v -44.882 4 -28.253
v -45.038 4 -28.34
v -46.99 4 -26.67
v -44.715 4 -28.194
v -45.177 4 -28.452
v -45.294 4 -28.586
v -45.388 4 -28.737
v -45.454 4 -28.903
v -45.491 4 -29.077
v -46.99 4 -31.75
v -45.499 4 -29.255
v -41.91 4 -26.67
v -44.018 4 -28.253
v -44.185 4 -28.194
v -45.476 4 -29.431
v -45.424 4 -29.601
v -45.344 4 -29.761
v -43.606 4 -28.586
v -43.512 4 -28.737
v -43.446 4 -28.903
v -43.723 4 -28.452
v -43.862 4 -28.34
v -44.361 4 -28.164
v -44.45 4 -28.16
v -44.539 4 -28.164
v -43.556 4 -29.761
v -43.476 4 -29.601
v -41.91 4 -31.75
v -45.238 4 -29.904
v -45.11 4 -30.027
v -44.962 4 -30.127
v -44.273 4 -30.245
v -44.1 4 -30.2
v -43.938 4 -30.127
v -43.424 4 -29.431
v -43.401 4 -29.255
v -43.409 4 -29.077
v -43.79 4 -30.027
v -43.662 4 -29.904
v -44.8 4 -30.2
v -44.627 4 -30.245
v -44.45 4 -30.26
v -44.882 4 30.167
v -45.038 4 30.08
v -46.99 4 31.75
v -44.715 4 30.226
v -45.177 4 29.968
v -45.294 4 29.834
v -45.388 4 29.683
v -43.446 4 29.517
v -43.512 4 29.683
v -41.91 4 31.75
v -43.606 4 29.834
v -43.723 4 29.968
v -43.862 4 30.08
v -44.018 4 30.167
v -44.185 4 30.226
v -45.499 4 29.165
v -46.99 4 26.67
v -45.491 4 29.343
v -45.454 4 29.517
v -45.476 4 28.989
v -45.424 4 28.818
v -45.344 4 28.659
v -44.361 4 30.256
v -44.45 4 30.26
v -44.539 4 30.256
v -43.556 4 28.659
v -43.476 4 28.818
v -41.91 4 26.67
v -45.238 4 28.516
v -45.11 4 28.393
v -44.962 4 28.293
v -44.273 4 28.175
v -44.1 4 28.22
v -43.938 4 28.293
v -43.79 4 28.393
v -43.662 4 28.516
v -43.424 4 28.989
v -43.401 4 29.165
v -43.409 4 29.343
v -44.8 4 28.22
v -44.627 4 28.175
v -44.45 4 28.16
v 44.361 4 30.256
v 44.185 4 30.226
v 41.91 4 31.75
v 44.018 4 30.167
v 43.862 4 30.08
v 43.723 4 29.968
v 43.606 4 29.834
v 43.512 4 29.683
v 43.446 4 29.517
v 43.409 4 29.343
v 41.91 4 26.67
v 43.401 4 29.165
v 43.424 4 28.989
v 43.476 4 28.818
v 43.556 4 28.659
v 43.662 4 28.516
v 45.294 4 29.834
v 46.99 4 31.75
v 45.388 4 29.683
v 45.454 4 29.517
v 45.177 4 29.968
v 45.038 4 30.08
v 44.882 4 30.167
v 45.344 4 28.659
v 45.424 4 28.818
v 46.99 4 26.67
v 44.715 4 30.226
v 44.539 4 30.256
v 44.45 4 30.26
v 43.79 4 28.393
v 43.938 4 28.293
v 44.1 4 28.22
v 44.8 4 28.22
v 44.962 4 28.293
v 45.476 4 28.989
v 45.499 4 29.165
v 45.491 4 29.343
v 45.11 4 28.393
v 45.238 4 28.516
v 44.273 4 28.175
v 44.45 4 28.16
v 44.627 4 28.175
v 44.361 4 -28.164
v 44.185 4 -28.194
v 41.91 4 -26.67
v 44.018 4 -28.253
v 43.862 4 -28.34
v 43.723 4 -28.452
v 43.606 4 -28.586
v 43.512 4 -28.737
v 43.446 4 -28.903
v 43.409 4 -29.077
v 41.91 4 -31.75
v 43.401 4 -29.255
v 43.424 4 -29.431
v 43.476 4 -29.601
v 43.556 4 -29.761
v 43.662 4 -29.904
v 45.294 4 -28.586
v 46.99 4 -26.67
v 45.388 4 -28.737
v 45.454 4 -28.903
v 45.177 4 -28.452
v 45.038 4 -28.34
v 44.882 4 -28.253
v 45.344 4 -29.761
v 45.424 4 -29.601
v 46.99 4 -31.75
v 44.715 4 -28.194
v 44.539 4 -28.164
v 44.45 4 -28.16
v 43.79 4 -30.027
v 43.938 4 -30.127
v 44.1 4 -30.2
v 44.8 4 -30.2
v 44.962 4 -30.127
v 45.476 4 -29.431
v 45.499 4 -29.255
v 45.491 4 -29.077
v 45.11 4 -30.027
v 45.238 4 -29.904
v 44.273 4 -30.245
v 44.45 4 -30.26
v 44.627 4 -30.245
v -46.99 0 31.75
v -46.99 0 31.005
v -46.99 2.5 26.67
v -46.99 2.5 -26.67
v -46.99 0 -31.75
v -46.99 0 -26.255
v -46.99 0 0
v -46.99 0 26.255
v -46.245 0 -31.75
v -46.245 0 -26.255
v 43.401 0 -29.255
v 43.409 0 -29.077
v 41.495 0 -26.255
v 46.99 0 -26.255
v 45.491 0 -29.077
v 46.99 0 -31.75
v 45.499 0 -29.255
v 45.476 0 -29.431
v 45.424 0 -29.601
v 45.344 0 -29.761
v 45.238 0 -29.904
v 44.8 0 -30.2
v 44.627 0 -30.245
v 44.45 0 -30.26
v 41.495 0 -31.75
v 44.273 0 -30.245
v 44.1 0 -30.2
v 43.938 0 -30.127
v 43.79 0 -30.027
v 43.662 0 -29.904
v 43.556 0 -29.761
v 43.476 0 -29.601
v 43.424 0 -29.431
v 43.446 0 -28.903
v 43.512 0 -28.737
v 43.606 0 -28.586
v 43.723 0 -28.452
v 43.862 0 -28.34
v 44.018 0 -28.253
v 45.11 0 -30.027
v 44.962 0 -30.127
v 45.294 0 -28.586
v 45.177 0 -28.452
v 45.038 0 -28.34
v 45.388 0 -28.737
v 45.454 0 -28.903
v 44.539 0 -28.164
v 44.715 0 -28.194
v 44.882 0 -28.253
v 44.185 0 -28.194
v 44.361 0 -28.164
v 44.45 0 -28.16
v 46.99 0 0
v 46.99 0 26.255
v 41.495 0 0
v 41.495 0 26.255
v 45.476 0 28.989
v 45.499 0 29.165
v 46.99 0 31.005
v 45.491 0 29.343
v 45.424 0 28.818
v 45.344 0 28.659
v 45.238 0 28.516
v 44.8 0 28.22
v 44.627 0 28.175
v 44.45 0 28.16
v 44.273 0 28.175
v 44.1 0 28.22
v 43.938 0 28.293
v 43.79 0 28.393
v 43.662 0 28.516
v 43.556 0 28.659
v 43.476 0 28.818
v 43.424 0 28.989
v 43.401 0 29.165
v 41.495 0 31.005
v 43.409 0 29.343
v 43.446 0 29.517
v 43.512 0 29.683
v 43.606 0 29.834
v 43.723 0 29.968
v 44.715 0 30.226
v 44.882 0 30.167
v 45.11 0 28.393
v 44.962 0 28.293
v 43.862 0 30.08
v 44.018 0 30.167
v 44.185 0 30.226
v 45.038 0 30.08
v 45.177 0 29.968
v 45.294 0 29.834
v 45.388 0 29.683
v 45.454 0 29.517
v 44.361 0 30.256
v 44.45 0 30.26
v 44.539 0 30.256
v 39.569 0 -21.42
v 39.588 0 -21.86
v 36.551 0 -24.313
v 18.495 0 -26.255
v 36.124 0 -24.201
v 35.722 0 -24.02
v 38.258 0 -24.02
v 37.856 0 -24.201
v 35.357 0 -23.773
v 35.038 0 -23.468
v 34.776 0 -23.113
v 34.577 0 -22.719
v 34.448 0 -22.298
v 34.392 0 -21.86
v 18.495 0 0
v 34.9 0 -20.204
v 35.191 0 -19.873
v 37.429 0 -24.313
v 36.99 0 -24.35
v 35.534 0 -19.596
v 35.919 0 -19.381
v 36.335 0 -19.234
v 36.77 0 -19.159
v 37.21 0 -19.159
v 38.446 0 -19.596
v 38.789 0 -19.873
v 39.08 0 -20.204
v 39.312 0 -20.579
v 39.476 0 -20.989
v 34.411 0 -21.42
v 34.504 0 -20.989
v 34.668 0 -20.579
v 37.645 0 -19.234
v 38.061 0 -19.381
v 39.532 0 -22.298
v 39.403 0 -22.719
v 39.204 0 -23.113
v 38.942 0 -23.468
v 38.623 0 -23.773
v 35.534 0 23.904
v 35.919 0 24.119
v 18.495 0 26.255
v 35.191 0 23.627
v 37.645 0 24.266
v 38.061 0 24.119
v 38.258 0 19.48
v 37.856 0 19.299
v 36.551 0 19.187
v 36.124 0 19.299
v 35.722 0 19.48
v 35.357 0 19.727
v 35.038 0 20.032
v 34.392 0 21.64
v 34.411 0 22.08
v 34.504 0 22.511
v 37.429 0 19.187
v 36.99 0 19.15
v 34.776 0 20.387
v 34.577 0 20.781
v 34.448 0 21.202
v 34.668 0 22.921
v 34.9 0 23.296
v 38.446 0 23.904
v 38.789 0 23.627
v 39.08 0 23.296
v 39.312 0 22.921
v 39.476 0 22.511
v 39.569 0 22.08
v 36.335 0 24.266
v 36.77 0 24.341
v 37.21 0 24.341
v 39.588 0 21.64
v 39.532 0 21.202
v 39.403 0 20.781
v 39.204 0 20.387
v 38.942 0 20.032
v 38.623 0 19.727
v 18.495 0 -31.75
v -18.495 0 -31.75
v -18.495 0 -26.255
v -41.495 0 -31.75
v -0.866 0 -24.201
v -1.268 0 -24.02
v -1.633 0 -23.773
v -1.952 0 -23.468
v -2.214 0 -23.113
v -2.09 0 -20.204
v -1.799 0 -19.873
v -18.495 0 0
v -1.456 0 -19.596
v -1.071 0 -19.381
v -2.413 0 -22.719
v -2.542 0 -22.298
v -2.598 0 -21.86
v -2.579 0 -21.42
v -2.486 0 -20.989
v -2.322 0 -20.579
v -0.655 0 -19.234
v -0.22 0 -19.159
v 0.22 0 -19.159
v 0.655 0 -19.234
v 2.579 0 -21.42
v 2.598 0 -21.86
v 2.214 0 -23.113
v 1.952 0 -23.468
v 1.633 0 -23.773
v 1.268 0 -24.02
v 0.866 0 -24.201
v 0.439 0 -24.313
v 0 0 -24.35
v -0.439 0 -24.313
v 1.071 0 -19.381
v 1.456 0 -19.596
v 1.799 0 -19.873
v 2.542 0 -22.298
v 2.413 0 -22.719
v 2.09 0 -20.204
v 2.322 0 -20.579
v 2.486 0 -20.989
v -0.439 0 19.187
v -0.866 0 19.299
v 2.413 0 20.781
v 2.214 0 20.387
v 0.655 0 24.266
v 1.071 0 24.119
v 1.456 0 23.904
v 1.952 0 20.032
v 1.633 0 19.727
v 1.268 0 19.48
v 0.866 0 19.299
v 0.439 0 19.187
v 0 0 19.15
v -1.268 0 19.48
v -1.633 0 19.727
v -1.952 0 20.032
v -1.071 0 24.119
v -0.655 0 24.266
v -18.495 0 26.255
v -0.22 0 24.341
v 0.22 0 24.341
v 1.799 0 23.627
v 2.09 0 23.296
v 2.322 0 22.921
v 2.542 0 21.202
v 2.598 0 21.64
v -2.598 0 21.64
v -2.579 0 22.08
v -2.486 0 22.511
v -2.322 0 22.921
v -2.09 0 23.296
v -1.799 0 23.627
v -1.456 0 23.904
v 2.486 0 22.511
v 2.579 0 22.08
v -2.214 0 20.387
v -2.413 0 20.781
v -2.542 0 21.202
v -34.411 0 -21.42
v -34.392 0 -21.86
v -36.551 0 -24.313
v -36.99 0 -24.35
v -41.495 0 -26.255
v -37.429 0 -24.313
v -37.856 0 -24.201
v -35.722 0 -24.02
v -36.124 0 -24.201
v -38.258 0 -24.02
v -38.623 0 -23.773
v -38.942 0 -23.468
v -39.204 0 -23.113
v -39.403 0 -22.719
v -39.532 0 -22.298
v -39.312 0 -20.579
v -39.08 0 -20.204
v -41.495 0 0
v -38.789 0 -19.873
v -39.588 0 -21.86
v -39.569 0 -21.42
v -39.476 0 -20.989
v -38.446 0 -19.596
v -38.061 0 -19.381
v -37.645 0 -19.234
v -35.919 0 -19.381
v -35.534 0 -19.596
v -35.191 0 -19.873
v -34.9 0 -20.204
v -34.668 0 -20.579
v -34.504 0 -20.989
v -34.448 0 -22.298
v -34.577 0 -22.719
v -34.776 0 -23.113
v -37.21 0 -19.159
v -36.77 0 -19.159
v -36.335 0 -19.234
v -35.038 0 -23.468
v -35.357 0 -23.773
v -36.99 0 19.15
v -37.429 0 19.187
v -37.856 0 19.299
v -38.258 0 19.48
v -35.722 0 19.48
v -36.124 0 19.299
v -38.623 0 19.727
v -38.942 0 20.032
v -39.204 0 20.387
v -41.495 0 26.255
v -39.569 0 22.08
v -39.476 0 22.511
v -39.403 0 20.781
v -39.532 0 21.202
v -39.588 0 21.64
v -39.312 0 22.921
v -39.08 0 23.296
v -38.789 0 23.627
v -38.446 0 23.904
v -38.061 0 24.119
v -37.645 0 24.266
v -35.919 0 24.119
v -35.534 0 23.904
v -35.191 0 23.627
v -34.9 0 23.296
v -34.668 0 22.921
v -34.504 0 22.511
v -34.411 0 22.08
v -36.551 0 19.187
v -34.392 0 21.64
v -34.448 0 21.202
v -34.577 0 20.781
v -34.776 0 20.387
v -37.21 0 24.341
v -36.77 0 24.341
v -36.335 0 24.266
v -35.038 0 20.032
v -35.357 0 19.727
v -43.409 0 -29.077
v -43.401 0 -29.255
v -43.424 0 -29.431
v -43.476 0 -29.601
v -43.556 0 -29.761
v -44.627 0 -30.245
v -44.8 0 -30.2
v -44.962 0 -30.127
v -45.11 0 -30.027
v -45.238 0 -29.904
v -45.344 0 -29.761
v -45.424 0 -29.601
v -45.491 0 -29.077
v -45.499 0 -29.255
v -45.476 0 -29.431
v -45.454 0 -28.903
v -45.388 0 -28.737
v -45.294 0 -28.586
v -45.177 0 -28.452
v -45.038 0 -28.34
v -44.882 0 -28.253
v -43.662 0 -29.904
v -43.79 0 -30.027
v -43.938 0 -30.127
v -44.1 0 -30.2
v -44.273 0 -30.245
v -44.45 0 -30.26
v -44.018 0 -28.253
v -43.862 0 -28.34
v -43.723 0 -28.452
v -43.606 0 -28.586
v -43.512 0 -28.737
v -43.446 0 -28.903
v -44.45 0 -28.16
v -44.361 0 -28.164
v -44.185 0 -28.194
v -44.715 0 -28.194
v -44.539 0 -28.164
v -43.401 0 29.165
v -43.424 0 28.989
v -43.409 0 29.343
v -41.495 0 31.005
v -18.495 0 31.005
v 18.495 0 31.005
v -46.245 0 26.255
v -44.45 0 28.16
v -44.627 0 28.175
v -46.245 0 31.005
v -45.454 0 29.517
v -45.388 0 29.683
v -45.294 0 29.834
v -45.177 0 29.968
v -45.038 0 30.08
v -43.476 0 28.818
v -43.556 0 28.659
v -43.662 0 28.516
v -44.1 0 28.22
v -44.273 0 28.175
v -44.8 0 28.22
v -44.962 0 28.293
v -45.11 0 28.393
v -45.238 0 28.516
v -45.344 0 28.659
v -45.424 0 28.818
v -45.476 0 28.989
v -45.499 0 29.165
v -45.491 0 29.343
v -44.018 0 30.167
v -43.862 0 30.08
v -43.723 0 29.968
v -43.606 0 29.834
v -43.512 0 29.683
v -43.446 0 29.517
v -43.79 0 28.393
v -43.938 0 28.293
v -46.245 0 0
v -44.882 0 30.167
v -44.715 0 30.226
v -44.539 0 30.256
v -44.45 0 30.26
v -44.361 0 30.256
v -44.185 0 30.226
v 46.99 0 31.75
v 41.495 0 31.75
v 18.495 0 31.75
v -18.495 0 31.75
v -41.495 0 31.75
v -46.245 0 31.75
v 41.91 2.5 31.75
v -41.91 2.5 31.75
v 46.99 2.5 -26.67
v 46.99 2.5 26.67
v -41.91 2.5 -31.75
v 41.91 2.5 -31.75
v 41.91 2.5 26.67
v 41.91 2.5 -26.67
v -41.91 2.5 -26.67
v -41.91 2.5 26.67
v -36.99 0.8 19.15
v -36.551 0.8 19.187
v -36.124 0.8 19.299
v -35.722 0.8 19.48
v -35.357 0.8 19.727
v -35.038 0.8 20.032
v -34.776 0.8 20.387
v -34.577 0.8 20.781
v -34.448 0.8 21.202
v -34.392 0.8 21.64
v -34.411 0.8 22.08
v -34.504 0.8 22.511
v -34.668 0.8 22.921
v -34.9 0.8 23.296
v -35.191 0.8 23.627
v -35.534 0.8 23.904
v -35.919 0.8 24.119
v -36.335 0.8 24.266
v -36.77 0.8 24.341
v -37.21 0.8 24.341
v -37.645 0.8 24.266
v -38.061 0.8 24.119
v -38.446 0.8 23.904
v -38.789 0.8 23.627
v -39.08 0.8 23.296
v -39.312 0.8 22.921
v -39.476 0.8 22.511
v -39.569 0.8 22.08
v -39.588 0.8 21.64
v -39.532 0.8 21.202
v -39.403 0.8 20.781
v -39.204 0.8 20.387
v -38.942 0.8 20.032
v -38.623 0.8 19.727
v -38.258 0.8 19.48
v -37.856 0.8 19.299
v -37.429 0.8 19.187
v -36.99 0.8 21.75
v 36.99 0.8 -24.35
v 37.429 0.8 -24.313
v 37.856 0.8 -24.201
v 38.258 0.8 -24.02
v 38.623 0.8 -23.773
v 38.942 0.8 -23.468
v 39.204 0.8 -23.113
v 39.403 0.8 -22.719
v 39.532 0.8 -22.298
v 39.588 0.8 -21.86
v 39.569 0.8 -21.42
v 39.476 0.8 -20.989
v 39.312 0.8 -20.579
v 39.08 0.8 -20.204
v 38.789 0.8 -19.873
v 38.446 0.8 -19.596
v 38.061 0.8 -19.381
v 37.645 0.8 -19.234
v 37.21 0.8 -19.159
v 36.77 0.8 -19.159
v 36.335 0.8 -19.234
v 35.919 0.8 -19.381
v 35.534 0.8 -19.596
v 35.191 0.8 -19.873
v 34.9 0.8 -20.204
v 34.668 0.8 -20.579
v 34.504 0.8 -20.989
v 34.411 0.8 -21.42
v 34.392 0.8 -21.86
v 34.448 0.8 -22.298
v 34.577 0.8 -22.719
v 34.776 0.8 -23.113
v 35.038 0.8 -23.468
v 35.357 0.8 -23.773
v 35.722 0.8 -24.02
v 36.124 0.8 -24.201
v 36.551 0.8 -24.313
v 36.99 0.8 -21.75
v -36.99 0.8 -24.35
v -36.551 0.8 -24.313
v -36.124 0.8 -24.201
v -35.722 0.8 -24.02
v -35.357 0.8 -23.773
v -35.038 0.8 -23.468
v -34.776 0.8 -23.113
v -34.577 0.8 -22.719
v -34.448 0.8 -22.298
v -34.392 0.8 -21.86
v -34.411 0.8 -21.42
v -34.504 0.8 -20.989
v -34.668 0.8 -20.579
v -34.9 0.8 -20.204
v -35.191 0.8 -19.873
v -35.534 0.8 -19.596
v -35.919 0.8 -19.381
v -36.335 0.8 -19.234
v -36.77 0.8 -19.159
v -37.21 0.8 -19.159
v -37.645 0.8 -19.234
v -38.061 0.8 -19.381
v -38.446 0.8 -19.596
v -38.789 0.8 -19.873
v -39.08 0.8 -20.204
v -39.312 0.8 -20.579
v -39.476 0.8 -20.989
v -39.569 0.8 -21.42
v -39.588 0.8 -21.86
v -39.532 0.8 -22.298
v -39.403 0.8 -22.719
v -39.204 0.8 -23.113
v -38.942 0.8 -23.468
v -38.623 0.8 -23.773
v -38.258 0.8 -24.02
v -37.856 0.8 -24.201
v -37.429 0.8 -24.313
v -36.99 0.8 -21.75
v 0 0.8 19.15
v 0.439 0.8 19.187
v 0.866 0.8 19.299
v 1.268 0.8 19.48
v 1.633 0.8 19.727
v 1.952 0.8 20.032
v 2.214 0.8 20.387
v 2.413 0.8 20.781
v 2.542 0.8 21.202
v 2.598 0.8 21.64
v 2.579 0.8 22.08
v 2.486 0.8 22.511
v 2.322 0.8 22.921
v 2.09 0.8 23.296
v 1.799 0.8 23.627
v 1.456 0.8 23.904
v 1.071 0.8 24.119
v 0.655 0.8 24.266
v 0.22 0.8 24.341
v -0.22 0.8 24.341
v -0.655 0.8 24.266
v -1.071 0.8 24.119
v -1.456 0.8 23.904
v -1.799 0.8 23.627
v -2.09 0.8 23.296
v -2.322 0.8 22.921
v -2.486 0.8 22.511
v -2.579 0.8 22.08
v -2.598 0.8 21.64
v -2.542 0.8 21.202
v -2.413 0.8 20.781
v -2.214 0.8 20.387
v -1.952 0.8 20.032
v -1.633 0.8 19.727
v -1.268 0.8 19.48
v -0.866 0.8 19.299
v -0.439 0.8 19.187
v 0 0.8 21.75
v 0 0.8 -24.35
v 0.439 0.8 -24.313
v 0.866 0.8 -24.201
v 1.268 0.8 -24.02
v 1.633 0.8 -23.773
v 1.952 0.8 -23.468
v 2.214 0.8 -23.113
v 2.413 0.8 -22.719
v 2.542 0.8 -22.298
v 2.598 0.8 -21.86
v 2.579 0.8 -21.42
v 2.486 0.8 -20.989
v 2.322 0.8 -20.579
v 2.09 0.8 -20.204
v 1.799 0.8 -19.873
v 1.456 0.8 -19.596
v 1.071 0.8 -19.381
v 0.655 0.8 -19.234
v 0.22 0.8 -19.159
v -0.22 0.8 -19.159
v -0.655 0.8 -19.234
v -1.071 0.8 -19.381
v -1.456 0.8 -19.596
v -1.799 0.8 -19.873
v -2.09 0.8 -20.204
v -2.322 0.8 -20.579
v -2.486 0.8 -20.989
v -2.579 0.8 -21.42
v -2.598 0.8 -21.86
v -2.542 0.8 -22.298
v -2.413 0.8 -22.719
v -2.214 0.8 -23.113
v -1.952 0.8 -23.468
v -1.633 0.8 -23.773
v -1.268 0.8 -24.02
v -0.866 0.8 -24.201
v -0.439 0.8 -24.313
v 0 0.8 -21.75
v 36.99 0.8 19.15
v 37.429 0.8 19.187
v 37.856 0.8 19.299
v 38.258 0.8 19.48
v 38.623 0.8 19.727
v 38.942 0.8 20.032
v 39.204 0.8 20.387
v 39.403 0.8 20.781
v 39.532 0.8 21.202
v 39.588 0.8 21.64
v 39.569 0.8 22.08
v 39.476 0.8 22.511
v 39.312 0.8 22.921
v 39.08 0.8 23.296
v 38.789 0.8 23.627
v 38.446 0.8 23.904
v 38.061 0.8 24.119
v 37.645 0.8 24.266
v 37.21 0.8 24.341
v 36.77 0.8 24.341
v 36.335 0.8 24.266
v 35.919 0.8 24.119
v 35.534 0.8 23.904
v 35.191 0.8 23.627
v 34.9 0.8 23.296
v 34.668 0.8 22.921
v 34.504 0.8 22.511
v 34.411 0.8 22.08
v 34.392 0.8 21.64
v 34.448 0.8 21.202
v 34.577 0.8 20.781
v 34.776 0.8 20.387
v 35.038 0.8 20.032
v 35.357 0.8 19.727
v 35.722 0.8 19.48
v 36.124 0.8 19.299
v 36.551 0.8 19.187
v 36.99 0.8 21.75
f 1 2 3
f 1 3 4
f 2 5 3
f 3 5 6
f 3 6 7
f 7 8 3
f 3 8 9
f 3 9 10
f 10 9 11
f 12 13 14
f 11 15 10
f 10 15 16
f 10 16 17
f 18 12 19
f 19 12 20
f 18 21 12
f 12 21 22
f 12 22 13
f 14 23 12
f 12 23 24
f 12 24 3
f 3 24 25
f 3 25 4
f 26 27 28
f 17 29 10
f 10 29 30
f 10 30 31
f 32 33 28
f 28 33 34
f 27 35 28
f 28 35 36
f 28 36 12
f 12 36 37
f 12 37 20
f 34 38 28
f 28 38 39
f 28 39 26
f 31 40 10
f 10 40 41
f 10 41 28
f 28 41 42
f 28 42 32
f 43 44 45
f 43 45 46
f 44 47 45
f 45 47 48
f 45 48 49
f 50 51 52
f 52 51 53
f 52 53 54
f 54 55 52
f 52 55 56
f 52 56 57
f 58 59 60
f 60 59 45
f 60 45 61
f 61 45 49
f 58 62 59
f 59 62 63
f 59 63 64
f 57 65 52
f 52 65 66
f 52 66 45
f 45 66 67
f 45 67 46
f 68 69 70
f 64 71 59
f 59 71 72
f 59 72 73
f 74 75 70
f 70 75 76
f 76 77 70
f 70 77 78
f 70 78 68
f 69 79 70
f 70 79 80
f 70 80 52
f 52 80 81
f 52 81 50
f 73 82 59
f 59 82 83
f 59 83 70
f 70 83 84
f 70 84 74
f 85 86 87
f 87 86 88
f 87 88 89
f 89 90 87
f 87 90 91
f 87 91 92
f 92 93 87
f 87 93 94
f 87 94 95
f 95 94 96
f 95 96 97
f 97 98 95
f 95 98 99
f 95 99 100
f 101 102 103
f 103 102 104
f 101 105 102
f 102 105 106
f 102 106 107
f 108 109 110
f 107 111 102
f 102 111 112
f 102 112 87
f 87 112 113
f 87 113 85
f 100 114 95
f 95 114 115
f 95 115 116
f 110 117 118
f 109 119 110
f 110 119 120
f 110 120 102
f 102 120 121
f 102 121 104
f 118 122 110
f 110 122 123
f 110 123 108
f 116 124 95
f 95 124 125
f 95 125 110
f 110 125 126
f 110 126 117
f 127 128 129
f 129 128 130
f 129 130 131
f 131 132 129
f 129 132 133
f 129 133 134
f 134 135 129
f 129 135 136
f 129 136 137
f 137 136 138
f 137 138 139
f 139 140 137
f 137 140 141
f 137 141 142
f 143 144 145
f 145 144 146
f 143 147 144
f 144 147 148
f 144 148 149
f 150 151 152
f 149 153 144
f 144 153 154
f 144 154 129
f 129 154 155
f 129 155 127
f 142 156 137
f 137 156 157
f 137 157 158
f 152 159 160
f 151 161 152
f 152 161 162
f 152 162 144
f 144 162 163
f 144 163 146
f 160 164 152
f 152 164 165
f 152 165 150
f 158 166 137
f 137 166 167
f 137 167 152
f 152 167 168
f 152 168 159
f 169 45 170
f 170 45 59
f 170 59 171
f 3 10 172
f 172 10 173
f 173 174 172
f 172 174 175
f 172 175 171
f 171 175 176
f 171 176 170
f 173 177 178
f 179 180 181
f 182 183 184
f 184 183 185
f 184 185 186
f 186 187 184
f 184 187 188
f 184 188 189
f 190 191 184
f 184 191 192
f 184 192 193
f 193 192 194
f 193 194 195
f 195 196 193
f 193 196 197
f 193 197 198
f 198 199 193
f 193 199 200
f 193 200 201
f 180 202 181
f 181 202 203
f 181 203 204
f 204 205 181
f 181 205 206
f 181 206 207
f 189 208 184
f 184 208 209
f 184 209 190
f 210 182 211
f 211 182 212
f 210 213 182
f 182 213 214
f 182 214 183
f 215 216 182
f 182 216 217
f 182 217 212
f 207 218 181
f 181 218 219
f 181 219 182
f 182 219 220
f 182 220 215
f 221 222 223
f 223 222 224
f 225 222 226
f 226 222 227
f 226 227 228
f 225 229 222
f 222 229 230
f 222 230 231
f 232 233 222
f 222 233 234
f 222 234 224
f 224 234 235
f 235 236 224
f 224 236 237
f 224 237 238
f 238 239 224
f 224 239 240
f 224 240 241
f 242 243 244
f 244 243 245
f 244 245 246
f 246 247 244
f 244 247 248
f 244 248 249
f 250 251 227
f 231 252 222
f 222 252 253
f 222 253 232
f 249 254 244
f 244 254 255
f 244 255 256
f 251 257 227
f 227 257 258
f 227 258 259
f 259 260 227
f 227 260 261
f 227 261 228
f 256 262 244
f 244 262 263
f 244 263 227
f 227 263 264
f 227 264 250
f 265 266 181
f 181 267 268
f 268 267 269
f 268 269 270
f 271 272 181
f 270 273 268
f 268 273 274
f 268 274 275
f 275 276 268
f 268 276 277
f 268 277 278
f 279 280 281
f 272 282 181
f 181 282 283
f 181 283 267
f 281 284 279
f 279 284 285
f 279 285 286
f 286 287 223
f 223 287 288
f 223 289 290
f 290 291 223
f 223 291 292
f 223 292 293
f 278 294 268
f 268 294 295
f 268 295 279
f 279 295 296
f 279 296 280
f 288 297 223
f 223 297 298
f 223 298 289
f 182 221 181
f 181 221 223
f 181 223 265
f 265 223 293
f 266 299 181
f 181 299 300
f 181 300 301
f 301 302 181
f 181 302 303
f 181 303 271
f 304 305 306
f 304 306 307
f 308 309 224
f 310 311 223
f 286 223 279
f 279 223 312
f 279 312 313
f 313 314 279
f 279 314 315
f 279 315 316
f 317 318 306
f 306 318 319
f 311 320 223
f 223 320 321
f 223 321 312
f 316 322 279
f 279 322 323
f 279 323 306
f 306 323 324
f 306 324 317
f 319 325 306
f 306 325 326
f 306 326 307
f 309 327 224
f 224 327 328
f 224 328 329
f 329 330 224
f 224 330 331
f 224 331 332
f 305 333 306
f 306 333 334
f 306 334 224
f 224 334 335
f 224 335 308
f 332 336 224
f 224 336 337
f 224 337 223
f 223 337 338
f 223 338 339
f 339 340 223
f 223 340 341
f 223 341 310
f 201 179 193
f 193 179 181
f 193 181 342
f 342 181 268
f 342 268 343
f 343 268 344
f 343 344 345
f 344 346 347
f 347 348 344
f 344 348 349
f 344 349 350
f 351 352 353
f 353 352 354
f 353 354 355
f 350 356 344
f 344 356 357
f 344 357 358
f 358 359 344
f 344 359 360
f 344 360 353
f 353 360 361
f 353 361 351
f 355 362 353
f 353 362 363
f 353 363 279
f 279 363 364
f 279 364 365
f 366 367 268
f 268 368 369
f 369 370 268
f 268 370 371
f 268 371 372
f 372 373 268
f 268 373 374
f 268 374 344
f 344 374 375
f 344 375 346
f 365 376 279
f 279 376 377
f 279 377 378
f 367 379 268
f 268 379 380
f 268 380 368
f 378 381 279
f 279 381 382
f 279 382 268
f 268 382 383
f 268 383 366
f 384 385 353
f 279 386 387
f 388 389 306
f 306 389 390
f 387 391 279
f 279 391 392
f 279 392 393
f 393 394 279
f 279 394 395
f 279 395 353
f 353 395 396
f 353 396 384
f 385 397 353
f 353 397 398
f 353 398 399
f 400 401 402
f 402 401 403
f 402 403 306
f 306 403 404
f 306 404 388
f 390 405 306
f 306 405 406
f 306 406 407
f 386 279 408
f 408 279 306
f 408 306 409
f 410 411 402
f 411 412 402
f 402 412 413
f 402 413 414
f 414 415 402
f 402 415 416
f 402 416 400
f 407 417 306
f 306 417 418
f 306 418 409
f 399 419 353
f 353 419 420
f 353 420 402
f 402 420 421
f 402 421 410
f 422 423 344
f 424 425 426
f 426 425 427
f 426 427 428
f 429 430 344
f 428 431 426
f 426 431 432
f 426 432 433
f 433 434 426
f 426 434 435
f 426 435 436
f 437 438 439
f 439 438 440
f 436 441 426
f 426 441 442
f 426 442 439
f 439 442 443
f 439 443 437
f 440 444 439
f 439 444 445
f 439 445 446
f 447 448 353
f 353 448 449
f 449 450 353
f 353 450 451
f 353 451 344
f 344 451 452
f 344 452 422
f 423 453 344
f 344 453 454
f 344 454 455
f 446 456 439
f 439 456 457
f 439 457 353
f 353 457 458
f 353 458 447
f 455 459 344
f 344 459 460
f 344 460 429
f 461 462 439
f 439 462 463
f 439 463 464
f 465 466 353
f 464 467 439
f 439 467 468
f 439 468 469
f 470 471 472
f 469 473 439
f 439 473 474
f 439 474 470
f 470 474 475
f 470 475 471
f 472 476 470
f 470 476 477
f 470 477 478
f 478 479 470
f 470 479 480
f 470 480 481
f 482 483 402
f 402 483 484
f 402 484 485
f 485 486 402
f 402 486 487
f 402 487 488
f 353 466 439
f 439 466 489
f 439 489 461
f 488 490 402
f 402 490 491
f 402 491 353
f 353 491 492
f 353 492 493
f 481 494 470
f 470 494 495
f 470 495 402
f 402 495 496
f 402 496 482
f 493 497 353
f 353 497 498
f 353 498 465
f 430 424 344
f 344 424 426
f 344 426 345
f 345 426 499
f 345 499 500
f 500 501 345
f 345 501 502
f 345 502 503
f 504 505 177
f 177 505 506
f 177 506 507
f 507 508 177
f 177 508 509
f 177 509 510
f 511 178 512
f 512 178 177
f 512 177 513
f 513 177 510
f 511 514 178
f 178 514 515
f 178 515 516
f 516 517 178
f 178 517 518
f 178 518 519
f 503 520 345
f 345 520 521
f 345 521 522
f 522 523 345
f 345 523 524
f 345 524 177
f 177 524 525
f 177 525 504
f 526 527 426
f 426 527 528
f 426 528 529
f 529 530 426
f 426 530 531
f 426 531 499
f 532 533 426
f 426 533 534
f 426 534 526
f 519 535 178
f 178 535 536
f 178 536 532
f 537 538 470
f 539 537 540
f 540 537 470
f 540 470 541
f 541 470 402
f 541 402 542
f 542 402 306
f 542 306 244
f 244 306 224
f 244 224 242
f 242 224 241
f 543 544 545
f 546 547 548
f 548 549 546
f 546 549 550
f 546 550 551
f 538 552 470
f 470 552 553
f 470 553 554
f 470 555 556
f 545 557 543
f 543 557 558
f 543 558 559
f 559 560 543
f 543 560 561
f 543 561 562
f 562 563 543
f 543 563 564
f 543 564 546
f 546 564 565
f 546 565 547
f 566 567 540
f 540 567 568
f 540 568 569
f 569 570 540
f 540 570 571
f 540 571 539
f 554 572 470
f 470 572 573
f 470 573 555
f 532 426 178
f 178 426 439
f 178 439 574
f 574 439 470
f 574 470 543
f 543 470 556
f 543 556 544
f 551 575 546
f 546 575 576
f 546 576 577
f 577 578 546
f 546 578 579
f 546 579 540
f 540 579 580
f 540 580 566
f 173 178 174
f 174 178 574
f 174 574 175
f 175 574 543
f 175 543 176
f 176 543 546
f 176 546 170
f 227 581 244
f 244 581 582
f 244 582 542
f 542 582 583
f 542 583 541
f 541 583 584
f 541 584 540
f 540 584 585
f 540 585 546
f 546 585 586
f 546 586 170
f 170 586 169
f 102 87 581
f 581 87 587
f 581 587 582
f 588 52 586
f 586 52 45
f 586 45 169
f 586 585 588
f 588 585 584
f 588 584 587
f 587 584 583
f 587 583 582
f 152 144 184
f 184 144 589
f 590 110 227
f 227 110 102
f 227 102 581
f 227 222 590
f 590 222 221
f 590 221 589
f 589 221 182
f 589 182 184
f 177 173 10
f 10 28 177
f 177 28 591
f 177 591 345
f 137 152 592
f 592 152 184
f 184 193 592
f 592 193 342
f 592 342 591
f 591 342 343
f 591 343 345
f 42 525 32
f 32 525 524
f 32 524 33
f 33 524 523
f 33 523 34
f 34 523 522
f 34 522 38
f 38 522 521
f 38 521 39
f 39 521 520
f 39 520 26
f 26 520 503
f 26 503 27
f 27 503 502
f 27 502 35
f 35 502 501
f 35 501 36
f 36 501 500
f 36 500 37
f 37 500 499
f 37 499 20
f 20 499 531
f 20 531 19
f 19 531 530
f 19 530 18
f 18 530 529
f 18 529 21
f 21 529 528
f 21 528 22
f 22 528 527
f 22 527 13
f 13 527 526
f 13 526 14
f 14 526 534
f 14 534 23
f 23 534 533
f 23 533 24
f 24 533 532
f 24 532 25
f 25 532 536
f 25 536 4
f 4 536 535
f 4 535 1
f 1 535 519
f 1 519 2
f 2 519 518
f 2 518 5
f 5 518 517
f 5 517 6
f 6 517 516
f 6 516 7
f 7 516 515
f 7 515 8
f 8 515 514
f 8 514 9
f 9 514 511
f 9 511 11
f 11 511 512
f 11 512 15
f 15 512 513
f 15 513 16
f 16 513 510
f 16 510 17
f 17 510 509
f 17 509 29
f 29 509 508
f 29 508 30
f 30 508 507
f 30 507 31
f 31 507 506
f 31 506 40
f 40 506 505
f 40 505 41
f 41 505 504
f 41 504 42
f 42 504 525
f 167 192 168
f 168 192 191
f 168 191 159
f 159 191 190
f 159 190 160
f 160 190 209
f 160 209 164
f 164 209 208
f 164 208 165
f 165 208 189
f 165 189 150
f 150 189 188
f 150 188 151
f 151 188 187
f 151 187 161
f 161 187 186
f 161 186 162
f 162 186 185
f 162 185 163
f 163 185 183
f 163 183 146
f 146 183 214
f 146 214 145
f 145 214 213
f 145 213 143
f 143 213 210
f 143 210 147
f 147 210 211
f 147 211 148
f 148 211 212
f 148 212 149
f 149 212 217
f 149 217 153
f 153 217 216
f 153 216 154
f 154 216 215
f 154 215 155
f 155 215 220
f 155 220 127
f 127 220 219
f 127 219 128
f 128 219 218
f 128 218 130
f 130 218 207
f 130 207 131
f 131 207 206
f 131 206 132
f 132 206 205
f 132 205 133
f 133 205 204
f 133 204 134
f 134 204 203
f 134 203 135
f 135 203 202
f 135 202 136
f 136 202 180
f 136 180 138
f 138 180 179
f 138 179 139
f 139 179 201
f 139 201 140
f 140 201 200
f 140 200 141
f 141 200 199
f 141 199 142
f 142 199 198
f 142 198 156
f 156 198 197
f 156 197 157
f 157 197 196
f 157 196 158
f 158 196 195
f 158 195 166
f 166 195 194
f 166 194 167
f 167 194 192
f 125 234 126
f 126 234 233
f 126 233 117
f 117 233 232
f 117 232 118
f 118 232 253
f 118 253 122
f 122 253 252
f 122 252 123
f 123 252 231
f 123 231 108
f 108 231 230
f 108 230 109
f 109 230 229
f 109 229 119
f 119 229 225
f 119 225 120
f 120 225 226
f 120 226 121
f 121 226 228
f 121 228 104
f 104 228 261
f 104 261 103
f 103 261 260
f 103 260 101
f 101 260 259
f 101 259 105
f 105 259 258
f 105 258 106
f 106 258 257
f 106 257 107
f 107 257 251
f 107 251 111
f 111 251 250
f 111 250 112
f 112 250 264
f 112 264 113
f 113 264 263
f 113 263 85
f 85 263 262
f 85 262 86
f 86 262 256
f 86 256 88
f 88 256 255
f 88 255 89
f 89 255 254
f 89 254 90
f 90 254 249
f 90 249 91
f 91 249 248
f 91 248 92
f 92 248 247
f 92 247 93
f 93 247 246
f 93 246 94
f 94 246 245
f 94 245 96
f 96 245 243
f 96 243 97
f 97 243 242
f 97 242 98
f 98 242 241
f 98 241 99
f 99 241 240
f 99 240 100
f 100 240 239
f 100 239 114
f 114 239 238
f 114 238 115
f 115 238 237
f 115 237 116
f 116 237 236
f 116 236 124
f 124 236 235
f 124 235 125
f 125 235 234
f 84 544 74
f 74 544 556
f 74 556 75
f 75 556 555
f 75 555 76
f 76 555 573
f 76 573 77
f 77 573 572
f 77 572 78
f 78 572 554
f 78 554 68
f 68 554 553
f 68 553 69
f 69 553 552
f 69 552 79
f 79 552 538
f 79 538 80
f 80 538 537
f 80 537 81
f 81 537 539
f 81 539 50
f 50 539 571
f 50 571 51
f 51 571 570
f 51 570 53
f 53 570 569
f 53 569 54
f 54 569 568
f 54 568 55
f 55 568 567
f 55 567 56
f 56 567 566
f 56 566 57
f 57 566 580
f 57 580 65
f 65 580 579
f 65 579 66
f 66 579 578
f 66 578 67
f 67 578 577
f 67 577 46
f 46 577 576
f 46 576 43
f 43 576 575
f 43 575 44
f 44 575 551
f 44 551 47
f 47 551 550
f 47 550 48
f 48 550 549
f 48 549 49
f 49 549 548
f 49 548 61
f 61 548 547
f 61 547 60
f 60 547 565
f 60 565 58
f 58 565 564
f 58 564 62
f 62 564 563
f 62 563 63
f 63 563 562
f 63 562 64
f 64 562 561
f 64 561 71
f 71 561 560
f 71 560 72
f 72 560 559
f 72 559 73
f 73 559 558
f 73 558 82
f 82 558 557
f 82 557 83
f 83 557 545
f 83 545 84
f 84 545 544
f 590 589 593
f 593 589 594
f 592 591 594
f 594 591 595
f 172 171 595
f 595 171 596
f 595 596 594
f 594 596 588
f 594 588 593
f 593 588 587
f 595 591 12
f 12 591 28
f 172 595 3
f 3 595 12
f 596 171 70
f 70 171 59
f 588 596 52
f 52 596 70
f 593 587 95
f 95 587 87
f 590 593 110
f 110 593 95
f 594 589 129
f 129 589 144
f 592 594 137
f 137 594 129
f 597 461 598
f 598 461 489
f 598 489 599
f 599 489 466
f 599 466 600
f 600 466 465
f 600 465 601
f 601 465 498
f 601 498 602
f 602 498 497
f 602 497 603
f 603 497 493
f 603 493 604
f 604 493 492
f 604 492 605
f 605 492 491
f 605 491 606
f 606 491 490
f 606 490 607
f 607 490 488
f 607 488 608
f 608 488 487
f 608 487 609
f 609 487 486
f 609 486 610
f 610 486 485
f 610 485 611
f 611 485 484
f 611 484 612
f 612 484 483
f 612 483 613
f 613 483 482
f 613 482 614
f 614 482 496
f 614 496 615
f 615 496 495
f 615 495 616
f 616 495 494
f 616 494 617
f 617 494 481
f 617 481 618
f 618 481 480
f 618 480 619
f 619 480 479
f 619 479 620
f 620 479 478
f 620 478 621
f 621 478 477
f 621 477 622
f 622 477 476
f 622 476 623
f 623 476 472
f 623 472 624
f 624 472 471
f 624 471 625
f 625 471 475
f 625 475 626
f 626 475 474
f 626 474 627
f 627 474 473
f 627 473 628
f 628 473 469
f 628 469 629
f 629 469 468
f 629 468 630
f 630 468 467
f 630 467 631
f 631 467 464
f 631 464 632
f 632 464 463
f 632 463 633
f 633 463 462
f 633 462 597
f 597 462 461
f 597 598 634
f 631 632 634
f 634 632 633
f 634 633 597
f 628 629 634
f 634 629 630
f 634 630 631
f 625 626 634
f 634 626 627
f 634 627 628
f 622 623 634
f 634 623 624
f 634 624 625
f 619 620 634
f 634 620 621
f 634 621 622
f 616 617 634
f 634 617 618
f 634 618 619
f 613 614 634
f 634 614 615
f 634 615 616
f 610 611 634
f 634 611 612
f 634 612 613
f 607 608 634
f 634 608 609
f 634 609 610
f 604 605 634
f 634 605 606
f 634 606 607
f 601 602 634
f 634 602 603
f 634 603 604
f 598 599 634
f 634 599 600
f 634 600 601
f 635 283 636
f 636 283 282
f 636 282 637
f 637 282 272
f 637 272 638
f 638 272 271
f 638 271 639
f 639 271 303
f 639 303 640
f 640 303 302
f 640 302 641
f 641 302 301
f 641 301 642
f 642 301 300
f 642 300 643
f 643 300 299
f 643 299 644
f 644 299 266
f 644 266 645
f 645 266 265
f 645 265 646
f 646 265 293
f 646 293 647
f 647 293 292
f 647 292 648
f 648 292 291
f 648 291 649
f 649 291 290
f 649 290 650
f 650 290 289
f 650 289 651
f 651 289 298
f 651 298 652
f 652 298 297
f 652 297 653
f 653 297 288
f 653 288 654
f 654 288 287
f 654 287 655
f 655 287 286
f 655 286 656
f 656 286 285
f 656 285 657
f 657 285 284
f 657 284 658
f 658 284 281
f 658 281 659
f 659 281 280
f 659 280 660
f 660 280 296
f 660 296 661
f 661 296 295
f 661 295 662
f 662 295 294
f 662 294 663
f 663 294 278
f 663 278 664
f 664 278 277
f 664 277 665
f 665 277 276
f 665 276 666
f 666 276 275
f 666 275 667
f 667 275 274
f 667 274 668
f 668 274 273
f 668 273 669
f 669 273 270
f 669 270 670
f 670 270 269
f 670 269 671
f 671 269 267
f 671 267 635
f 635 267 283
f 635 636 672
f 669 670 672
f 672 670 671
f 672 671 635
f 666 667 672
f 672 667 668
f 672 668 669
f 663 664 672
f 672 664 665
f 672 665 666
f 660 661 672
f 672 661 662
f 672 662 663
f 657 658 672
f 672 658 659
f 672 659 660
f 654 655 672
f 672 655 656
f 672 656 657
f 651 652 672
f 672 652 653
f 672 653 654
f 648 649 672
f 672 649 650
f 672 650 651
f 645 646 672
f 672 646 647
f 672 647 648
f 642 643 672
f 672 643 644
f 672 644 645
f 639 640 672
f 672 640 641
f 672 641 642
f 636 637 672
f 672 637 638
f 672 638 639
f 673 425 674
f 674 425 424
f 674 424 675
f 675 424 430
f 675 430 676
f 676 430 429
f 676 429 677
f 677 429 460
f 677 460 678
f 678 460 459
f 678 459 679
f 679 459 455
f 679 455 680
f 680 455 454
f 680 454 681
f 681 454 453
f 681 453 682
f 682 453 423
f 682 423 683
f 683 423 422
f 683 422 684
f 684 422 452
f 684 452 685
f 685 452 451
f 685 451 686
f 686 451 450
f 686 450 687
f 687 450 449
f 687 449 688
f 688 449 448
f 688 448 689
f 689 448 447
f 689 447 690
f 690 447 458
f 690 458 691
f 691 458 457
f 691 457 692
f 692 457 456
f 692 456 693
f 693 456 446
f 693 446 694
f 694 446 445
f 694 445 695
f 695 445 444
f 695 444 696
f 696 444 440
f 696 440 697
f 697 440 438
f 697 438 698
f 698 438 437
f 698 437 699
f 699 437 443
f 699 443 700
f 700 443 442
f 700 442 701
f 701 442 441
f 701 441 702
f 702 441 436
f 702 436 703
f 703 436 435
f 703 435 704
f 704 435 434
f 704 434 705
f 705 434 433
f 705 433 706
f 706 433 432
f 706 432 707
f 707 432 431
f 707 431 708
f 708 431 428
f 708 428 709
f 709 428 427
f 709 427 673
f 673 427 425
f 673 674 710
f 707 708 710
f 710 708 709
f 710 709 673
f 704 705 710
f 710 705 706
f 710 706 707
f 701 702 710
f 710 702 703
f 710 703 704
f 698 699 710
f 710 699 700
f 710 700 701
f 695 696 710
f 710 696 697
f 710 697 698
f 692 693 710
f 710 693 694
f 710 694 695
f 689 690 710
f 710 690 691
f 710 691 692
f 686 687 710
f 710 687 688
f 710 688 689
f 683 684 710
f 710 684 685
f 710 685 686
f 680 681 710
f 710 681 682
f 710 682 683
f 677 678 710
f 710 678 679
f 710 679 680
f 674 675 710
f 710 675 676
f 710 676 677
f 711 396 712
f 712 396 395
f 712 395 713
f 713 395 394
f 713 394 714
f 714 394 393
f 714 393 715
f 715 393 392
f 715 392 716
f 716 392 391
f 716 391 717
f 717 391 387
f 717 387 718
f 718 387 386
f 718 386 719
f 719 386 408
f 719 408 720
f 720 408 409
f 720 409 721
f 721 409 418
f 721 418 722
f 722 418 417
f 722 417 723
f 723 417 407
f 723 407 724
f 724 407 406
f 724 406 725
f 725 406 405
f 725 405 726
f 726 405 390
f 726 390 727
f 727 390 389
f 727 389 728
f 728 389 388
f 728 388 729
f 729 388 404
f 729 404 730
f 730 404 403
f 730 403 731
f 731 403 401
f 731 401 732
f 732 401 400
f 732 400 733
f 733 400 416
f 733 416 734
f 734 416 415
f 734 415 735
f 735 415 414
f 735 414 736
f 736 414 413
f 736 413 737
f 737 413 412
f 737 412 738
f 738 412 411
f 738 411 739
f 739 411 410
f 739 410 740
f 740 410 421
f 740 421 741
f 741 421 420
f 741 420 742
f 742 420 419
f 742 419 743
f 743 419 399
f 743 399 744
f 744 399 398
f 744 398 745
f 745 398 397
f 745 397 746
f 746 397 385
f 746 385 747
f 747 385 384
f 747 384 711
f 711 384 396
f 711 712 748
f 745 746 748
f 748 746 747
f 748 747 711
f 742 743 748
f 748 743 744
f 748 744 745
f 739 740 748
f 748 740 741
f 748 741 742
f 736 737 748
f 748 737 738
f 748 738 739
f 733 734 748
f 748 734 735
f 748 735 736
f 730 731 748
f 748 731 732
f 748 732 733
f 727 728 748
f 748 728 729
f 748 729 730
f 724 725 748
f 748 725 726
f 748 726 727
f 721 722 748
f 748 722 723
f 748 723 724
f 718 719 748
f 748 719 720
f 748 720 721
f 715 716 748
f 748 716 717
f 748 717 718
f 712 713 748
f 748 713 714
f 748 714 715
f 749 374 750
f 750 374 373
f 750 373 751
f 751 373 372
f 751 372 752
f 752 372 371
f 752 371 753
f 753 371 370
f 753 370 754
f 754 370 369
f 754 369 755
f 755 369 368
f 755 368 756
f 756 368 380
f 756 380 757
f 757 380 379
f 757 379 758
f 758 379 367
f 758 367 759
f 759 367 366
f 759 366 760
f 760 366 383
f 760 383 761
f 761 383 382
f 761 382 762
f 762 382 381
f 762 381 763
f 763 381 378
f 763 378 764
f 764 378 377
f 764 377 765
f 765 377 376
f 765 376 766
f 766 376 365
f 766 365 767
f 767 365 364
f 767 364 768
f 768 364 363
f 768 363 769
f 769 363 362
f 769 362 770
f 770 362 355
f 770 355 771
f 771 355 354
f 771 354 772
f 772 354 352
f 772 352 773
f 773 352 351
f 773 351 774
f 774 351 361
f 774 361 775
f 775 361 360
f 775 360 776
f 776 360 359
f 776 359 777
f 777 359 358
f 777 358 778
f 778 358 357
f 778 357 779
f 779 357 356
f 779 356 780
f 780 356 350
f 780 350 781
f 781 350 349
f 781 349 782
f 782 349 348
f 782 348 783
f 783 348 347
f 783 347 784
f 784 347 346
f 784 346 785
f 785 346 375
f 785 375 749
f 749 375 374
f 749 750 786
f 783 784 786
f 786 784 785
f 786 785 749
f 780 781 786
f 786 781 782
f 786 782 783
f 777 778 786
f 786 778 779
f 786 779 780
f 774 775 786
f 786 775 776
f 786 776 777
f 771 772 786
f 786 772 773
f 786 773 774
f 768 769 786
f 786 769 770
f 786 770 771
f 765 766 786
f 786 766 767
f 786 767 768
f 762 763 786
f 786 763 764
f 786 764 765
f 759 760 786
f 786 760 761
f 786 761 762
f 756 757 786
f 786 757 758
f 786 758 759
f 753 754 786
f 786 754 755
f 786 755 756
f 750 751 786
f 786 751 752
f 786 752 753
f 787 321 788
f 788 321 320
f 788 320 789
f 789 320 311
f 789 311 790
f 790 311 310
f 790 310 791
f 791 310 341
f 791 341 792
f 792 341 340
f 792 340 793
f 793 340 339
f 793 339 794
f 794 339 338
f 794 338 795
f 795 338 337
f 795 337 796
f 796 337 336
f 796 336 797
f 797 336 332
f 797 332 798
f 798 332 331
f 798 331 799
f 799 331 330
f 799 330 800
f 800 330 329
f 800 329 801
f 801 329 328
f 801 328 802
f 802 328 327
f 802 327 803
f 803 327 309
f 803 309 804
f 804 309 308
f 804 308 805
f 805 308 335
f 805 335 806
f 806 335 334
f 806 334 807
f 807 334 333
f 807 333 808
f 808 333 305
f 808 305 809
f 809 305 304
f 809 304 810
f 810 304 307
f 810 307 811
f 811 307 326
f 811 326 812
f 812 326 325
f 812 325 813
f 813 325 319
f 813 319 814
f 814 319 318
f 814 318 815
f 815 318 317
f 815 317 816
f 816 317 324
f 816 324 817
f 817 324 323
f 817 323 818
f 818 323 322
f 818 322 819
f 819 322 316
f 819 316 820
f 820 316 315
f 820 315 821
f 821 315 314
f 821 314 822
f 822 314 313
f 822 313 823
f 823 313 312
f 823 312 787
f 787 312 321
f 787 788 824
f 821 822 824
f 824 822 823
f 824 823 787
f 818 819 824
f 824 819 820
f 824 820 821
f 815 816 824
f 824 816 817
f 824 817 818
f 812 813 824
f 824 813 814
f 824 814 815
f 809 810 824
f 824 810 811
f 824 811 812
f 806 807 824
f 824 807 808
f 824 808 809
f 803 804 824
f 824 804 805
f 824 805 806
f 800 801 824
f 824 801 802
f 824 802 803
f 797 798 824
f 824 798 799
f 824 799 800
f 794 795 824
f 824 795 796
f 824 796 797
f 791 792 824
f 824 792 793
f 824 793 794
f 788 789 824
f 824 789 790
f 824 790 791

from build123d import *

# Parameters (mm, degrees)
SKETCH_1_W           = 93.98
SKETCH_1_H           = 63.5
SKETCH_1_R           = 1.05
EXTRUDE_1_DEPTH      = 4
SKETCH_2_OUTSIDE_W   = 118.678
SKETCH_2_OUTSIDE_H   = 88.198
SKETCH_2_OUTSIDE_W_2 = 5.08
SKETCH_2_OUTSIDE_H_2 = 5.08
CUT_EXTRUDE_1_DEPTH  = 1.5
SKETCH_3_R           = 2.6
CUT_EXTRUDE_2_DEPTH  = 0.8


with BuildPart() as part:
    # 草图1 → 凸台-拉伸1 (new body)
    with BuildSketch(Plane(origin=(0, 0, 0), x_dir=(1, 0, 0), z_dir=(0, 1, 0))):
        Rectangle(SKETCH_1_W, SKETCH_1_H)
        with Locations(Location((-44.45, 29.21, 0), (0, 0, 270))):
            Circle(SKETCH_1_R, mode=Mode.SUBTRACT)
        with Locations(Location((-44.45, -29.21, 0), (0, 0, 270))):
            Circle(SKETCH_1_R, mode=Mode.SUBTRACT)
        with Locations(Location((44.45, 29.21, 0), (0, 0, 270))):
            Circle(SKETCH_1_R, mode=Mode.SUBTRACT)
        with Locations(Location((44.45, -29.21, 0), (0, 0, 270))):
            Circle(SKETCH_1_R, mode=Mode.SUBTRACT)
    extrude(amount=EXTRUDE_1_DEPTH)

    # 草图2 outside → 切除-拉伸1 (cut)
    with BuildSketch(Plane(origin=(0, 4, 0), x_dir=(1, 0, 0), z_dir=(0, 1, 0))):
        Rectangle(SKETCH_2_OUTSIDE_W, SKETCH_2_OUTSIDE_H)
        with Locations((-44.45, 29.21)):
            Rectangle(SKETCH_2_OUTSIDE_W_2, SKETCH_2_OUTSIDE_H_2, mode=Mode.SUBTRACT)
        with Locations((-44.45, -29.21)):
            Rectangle(SKETCH_2_OUTSIDE_W_2, SKETCH_2_OUTSIDE_H_2, mode=Mode.SUBTRACT)
        with Locations((44.45, -29.21)):
            Rectangle(SKETCH_2_OUTSIDE_W_2, SKETCH_2_OUTSIDE_H_2, mode=Mode.SUBTRACT)
        with Locations((44.45, 29.21)):
            Rectangle(SKETCH_2_OUTSIDE_W_2, SKETCH_2_OUTSIDE_H_2, mode=Mode.SUBTRACT)
    extrude(amount=-CUT_EXTRUDE_1_DEPTH, mode=Mode.SUBTRACT)

    # 草图3 → 切除-拉伸2 (cut)
    with BuildSketch(Plane.XZ):
        with Locations(Location((-36.99, 21.75, 0), (0, 0, 270))):
            Circle(SKETCH_3_R)
        with Locations(Location((-36.99, -21.75, 0), (0, 0, 270))):
            Circle(SKETCH_3_R)
        with Locations(Location((0, 21.75, 0), (0, 0, 270))):
            Circle(SKETCH_3_R)
        with Locations(Location((0, -21.75, 0), (0, 0, 270))):
            Circle(SKETCH_3_R)
        with Locations(Location((36.99, 21.75, 0), (0, 0, 270))):
            Circle(SKETCH_3_R)
        with Locations(Location((36.99, -21.75, 0), (0, 0, 270))):
            Circle(SKETCH_3_R)
    extrude(amount=-CUT_EXTRUDE_2_DEPTH, mode=Mode.SUBTRACT)


solid = part.part
